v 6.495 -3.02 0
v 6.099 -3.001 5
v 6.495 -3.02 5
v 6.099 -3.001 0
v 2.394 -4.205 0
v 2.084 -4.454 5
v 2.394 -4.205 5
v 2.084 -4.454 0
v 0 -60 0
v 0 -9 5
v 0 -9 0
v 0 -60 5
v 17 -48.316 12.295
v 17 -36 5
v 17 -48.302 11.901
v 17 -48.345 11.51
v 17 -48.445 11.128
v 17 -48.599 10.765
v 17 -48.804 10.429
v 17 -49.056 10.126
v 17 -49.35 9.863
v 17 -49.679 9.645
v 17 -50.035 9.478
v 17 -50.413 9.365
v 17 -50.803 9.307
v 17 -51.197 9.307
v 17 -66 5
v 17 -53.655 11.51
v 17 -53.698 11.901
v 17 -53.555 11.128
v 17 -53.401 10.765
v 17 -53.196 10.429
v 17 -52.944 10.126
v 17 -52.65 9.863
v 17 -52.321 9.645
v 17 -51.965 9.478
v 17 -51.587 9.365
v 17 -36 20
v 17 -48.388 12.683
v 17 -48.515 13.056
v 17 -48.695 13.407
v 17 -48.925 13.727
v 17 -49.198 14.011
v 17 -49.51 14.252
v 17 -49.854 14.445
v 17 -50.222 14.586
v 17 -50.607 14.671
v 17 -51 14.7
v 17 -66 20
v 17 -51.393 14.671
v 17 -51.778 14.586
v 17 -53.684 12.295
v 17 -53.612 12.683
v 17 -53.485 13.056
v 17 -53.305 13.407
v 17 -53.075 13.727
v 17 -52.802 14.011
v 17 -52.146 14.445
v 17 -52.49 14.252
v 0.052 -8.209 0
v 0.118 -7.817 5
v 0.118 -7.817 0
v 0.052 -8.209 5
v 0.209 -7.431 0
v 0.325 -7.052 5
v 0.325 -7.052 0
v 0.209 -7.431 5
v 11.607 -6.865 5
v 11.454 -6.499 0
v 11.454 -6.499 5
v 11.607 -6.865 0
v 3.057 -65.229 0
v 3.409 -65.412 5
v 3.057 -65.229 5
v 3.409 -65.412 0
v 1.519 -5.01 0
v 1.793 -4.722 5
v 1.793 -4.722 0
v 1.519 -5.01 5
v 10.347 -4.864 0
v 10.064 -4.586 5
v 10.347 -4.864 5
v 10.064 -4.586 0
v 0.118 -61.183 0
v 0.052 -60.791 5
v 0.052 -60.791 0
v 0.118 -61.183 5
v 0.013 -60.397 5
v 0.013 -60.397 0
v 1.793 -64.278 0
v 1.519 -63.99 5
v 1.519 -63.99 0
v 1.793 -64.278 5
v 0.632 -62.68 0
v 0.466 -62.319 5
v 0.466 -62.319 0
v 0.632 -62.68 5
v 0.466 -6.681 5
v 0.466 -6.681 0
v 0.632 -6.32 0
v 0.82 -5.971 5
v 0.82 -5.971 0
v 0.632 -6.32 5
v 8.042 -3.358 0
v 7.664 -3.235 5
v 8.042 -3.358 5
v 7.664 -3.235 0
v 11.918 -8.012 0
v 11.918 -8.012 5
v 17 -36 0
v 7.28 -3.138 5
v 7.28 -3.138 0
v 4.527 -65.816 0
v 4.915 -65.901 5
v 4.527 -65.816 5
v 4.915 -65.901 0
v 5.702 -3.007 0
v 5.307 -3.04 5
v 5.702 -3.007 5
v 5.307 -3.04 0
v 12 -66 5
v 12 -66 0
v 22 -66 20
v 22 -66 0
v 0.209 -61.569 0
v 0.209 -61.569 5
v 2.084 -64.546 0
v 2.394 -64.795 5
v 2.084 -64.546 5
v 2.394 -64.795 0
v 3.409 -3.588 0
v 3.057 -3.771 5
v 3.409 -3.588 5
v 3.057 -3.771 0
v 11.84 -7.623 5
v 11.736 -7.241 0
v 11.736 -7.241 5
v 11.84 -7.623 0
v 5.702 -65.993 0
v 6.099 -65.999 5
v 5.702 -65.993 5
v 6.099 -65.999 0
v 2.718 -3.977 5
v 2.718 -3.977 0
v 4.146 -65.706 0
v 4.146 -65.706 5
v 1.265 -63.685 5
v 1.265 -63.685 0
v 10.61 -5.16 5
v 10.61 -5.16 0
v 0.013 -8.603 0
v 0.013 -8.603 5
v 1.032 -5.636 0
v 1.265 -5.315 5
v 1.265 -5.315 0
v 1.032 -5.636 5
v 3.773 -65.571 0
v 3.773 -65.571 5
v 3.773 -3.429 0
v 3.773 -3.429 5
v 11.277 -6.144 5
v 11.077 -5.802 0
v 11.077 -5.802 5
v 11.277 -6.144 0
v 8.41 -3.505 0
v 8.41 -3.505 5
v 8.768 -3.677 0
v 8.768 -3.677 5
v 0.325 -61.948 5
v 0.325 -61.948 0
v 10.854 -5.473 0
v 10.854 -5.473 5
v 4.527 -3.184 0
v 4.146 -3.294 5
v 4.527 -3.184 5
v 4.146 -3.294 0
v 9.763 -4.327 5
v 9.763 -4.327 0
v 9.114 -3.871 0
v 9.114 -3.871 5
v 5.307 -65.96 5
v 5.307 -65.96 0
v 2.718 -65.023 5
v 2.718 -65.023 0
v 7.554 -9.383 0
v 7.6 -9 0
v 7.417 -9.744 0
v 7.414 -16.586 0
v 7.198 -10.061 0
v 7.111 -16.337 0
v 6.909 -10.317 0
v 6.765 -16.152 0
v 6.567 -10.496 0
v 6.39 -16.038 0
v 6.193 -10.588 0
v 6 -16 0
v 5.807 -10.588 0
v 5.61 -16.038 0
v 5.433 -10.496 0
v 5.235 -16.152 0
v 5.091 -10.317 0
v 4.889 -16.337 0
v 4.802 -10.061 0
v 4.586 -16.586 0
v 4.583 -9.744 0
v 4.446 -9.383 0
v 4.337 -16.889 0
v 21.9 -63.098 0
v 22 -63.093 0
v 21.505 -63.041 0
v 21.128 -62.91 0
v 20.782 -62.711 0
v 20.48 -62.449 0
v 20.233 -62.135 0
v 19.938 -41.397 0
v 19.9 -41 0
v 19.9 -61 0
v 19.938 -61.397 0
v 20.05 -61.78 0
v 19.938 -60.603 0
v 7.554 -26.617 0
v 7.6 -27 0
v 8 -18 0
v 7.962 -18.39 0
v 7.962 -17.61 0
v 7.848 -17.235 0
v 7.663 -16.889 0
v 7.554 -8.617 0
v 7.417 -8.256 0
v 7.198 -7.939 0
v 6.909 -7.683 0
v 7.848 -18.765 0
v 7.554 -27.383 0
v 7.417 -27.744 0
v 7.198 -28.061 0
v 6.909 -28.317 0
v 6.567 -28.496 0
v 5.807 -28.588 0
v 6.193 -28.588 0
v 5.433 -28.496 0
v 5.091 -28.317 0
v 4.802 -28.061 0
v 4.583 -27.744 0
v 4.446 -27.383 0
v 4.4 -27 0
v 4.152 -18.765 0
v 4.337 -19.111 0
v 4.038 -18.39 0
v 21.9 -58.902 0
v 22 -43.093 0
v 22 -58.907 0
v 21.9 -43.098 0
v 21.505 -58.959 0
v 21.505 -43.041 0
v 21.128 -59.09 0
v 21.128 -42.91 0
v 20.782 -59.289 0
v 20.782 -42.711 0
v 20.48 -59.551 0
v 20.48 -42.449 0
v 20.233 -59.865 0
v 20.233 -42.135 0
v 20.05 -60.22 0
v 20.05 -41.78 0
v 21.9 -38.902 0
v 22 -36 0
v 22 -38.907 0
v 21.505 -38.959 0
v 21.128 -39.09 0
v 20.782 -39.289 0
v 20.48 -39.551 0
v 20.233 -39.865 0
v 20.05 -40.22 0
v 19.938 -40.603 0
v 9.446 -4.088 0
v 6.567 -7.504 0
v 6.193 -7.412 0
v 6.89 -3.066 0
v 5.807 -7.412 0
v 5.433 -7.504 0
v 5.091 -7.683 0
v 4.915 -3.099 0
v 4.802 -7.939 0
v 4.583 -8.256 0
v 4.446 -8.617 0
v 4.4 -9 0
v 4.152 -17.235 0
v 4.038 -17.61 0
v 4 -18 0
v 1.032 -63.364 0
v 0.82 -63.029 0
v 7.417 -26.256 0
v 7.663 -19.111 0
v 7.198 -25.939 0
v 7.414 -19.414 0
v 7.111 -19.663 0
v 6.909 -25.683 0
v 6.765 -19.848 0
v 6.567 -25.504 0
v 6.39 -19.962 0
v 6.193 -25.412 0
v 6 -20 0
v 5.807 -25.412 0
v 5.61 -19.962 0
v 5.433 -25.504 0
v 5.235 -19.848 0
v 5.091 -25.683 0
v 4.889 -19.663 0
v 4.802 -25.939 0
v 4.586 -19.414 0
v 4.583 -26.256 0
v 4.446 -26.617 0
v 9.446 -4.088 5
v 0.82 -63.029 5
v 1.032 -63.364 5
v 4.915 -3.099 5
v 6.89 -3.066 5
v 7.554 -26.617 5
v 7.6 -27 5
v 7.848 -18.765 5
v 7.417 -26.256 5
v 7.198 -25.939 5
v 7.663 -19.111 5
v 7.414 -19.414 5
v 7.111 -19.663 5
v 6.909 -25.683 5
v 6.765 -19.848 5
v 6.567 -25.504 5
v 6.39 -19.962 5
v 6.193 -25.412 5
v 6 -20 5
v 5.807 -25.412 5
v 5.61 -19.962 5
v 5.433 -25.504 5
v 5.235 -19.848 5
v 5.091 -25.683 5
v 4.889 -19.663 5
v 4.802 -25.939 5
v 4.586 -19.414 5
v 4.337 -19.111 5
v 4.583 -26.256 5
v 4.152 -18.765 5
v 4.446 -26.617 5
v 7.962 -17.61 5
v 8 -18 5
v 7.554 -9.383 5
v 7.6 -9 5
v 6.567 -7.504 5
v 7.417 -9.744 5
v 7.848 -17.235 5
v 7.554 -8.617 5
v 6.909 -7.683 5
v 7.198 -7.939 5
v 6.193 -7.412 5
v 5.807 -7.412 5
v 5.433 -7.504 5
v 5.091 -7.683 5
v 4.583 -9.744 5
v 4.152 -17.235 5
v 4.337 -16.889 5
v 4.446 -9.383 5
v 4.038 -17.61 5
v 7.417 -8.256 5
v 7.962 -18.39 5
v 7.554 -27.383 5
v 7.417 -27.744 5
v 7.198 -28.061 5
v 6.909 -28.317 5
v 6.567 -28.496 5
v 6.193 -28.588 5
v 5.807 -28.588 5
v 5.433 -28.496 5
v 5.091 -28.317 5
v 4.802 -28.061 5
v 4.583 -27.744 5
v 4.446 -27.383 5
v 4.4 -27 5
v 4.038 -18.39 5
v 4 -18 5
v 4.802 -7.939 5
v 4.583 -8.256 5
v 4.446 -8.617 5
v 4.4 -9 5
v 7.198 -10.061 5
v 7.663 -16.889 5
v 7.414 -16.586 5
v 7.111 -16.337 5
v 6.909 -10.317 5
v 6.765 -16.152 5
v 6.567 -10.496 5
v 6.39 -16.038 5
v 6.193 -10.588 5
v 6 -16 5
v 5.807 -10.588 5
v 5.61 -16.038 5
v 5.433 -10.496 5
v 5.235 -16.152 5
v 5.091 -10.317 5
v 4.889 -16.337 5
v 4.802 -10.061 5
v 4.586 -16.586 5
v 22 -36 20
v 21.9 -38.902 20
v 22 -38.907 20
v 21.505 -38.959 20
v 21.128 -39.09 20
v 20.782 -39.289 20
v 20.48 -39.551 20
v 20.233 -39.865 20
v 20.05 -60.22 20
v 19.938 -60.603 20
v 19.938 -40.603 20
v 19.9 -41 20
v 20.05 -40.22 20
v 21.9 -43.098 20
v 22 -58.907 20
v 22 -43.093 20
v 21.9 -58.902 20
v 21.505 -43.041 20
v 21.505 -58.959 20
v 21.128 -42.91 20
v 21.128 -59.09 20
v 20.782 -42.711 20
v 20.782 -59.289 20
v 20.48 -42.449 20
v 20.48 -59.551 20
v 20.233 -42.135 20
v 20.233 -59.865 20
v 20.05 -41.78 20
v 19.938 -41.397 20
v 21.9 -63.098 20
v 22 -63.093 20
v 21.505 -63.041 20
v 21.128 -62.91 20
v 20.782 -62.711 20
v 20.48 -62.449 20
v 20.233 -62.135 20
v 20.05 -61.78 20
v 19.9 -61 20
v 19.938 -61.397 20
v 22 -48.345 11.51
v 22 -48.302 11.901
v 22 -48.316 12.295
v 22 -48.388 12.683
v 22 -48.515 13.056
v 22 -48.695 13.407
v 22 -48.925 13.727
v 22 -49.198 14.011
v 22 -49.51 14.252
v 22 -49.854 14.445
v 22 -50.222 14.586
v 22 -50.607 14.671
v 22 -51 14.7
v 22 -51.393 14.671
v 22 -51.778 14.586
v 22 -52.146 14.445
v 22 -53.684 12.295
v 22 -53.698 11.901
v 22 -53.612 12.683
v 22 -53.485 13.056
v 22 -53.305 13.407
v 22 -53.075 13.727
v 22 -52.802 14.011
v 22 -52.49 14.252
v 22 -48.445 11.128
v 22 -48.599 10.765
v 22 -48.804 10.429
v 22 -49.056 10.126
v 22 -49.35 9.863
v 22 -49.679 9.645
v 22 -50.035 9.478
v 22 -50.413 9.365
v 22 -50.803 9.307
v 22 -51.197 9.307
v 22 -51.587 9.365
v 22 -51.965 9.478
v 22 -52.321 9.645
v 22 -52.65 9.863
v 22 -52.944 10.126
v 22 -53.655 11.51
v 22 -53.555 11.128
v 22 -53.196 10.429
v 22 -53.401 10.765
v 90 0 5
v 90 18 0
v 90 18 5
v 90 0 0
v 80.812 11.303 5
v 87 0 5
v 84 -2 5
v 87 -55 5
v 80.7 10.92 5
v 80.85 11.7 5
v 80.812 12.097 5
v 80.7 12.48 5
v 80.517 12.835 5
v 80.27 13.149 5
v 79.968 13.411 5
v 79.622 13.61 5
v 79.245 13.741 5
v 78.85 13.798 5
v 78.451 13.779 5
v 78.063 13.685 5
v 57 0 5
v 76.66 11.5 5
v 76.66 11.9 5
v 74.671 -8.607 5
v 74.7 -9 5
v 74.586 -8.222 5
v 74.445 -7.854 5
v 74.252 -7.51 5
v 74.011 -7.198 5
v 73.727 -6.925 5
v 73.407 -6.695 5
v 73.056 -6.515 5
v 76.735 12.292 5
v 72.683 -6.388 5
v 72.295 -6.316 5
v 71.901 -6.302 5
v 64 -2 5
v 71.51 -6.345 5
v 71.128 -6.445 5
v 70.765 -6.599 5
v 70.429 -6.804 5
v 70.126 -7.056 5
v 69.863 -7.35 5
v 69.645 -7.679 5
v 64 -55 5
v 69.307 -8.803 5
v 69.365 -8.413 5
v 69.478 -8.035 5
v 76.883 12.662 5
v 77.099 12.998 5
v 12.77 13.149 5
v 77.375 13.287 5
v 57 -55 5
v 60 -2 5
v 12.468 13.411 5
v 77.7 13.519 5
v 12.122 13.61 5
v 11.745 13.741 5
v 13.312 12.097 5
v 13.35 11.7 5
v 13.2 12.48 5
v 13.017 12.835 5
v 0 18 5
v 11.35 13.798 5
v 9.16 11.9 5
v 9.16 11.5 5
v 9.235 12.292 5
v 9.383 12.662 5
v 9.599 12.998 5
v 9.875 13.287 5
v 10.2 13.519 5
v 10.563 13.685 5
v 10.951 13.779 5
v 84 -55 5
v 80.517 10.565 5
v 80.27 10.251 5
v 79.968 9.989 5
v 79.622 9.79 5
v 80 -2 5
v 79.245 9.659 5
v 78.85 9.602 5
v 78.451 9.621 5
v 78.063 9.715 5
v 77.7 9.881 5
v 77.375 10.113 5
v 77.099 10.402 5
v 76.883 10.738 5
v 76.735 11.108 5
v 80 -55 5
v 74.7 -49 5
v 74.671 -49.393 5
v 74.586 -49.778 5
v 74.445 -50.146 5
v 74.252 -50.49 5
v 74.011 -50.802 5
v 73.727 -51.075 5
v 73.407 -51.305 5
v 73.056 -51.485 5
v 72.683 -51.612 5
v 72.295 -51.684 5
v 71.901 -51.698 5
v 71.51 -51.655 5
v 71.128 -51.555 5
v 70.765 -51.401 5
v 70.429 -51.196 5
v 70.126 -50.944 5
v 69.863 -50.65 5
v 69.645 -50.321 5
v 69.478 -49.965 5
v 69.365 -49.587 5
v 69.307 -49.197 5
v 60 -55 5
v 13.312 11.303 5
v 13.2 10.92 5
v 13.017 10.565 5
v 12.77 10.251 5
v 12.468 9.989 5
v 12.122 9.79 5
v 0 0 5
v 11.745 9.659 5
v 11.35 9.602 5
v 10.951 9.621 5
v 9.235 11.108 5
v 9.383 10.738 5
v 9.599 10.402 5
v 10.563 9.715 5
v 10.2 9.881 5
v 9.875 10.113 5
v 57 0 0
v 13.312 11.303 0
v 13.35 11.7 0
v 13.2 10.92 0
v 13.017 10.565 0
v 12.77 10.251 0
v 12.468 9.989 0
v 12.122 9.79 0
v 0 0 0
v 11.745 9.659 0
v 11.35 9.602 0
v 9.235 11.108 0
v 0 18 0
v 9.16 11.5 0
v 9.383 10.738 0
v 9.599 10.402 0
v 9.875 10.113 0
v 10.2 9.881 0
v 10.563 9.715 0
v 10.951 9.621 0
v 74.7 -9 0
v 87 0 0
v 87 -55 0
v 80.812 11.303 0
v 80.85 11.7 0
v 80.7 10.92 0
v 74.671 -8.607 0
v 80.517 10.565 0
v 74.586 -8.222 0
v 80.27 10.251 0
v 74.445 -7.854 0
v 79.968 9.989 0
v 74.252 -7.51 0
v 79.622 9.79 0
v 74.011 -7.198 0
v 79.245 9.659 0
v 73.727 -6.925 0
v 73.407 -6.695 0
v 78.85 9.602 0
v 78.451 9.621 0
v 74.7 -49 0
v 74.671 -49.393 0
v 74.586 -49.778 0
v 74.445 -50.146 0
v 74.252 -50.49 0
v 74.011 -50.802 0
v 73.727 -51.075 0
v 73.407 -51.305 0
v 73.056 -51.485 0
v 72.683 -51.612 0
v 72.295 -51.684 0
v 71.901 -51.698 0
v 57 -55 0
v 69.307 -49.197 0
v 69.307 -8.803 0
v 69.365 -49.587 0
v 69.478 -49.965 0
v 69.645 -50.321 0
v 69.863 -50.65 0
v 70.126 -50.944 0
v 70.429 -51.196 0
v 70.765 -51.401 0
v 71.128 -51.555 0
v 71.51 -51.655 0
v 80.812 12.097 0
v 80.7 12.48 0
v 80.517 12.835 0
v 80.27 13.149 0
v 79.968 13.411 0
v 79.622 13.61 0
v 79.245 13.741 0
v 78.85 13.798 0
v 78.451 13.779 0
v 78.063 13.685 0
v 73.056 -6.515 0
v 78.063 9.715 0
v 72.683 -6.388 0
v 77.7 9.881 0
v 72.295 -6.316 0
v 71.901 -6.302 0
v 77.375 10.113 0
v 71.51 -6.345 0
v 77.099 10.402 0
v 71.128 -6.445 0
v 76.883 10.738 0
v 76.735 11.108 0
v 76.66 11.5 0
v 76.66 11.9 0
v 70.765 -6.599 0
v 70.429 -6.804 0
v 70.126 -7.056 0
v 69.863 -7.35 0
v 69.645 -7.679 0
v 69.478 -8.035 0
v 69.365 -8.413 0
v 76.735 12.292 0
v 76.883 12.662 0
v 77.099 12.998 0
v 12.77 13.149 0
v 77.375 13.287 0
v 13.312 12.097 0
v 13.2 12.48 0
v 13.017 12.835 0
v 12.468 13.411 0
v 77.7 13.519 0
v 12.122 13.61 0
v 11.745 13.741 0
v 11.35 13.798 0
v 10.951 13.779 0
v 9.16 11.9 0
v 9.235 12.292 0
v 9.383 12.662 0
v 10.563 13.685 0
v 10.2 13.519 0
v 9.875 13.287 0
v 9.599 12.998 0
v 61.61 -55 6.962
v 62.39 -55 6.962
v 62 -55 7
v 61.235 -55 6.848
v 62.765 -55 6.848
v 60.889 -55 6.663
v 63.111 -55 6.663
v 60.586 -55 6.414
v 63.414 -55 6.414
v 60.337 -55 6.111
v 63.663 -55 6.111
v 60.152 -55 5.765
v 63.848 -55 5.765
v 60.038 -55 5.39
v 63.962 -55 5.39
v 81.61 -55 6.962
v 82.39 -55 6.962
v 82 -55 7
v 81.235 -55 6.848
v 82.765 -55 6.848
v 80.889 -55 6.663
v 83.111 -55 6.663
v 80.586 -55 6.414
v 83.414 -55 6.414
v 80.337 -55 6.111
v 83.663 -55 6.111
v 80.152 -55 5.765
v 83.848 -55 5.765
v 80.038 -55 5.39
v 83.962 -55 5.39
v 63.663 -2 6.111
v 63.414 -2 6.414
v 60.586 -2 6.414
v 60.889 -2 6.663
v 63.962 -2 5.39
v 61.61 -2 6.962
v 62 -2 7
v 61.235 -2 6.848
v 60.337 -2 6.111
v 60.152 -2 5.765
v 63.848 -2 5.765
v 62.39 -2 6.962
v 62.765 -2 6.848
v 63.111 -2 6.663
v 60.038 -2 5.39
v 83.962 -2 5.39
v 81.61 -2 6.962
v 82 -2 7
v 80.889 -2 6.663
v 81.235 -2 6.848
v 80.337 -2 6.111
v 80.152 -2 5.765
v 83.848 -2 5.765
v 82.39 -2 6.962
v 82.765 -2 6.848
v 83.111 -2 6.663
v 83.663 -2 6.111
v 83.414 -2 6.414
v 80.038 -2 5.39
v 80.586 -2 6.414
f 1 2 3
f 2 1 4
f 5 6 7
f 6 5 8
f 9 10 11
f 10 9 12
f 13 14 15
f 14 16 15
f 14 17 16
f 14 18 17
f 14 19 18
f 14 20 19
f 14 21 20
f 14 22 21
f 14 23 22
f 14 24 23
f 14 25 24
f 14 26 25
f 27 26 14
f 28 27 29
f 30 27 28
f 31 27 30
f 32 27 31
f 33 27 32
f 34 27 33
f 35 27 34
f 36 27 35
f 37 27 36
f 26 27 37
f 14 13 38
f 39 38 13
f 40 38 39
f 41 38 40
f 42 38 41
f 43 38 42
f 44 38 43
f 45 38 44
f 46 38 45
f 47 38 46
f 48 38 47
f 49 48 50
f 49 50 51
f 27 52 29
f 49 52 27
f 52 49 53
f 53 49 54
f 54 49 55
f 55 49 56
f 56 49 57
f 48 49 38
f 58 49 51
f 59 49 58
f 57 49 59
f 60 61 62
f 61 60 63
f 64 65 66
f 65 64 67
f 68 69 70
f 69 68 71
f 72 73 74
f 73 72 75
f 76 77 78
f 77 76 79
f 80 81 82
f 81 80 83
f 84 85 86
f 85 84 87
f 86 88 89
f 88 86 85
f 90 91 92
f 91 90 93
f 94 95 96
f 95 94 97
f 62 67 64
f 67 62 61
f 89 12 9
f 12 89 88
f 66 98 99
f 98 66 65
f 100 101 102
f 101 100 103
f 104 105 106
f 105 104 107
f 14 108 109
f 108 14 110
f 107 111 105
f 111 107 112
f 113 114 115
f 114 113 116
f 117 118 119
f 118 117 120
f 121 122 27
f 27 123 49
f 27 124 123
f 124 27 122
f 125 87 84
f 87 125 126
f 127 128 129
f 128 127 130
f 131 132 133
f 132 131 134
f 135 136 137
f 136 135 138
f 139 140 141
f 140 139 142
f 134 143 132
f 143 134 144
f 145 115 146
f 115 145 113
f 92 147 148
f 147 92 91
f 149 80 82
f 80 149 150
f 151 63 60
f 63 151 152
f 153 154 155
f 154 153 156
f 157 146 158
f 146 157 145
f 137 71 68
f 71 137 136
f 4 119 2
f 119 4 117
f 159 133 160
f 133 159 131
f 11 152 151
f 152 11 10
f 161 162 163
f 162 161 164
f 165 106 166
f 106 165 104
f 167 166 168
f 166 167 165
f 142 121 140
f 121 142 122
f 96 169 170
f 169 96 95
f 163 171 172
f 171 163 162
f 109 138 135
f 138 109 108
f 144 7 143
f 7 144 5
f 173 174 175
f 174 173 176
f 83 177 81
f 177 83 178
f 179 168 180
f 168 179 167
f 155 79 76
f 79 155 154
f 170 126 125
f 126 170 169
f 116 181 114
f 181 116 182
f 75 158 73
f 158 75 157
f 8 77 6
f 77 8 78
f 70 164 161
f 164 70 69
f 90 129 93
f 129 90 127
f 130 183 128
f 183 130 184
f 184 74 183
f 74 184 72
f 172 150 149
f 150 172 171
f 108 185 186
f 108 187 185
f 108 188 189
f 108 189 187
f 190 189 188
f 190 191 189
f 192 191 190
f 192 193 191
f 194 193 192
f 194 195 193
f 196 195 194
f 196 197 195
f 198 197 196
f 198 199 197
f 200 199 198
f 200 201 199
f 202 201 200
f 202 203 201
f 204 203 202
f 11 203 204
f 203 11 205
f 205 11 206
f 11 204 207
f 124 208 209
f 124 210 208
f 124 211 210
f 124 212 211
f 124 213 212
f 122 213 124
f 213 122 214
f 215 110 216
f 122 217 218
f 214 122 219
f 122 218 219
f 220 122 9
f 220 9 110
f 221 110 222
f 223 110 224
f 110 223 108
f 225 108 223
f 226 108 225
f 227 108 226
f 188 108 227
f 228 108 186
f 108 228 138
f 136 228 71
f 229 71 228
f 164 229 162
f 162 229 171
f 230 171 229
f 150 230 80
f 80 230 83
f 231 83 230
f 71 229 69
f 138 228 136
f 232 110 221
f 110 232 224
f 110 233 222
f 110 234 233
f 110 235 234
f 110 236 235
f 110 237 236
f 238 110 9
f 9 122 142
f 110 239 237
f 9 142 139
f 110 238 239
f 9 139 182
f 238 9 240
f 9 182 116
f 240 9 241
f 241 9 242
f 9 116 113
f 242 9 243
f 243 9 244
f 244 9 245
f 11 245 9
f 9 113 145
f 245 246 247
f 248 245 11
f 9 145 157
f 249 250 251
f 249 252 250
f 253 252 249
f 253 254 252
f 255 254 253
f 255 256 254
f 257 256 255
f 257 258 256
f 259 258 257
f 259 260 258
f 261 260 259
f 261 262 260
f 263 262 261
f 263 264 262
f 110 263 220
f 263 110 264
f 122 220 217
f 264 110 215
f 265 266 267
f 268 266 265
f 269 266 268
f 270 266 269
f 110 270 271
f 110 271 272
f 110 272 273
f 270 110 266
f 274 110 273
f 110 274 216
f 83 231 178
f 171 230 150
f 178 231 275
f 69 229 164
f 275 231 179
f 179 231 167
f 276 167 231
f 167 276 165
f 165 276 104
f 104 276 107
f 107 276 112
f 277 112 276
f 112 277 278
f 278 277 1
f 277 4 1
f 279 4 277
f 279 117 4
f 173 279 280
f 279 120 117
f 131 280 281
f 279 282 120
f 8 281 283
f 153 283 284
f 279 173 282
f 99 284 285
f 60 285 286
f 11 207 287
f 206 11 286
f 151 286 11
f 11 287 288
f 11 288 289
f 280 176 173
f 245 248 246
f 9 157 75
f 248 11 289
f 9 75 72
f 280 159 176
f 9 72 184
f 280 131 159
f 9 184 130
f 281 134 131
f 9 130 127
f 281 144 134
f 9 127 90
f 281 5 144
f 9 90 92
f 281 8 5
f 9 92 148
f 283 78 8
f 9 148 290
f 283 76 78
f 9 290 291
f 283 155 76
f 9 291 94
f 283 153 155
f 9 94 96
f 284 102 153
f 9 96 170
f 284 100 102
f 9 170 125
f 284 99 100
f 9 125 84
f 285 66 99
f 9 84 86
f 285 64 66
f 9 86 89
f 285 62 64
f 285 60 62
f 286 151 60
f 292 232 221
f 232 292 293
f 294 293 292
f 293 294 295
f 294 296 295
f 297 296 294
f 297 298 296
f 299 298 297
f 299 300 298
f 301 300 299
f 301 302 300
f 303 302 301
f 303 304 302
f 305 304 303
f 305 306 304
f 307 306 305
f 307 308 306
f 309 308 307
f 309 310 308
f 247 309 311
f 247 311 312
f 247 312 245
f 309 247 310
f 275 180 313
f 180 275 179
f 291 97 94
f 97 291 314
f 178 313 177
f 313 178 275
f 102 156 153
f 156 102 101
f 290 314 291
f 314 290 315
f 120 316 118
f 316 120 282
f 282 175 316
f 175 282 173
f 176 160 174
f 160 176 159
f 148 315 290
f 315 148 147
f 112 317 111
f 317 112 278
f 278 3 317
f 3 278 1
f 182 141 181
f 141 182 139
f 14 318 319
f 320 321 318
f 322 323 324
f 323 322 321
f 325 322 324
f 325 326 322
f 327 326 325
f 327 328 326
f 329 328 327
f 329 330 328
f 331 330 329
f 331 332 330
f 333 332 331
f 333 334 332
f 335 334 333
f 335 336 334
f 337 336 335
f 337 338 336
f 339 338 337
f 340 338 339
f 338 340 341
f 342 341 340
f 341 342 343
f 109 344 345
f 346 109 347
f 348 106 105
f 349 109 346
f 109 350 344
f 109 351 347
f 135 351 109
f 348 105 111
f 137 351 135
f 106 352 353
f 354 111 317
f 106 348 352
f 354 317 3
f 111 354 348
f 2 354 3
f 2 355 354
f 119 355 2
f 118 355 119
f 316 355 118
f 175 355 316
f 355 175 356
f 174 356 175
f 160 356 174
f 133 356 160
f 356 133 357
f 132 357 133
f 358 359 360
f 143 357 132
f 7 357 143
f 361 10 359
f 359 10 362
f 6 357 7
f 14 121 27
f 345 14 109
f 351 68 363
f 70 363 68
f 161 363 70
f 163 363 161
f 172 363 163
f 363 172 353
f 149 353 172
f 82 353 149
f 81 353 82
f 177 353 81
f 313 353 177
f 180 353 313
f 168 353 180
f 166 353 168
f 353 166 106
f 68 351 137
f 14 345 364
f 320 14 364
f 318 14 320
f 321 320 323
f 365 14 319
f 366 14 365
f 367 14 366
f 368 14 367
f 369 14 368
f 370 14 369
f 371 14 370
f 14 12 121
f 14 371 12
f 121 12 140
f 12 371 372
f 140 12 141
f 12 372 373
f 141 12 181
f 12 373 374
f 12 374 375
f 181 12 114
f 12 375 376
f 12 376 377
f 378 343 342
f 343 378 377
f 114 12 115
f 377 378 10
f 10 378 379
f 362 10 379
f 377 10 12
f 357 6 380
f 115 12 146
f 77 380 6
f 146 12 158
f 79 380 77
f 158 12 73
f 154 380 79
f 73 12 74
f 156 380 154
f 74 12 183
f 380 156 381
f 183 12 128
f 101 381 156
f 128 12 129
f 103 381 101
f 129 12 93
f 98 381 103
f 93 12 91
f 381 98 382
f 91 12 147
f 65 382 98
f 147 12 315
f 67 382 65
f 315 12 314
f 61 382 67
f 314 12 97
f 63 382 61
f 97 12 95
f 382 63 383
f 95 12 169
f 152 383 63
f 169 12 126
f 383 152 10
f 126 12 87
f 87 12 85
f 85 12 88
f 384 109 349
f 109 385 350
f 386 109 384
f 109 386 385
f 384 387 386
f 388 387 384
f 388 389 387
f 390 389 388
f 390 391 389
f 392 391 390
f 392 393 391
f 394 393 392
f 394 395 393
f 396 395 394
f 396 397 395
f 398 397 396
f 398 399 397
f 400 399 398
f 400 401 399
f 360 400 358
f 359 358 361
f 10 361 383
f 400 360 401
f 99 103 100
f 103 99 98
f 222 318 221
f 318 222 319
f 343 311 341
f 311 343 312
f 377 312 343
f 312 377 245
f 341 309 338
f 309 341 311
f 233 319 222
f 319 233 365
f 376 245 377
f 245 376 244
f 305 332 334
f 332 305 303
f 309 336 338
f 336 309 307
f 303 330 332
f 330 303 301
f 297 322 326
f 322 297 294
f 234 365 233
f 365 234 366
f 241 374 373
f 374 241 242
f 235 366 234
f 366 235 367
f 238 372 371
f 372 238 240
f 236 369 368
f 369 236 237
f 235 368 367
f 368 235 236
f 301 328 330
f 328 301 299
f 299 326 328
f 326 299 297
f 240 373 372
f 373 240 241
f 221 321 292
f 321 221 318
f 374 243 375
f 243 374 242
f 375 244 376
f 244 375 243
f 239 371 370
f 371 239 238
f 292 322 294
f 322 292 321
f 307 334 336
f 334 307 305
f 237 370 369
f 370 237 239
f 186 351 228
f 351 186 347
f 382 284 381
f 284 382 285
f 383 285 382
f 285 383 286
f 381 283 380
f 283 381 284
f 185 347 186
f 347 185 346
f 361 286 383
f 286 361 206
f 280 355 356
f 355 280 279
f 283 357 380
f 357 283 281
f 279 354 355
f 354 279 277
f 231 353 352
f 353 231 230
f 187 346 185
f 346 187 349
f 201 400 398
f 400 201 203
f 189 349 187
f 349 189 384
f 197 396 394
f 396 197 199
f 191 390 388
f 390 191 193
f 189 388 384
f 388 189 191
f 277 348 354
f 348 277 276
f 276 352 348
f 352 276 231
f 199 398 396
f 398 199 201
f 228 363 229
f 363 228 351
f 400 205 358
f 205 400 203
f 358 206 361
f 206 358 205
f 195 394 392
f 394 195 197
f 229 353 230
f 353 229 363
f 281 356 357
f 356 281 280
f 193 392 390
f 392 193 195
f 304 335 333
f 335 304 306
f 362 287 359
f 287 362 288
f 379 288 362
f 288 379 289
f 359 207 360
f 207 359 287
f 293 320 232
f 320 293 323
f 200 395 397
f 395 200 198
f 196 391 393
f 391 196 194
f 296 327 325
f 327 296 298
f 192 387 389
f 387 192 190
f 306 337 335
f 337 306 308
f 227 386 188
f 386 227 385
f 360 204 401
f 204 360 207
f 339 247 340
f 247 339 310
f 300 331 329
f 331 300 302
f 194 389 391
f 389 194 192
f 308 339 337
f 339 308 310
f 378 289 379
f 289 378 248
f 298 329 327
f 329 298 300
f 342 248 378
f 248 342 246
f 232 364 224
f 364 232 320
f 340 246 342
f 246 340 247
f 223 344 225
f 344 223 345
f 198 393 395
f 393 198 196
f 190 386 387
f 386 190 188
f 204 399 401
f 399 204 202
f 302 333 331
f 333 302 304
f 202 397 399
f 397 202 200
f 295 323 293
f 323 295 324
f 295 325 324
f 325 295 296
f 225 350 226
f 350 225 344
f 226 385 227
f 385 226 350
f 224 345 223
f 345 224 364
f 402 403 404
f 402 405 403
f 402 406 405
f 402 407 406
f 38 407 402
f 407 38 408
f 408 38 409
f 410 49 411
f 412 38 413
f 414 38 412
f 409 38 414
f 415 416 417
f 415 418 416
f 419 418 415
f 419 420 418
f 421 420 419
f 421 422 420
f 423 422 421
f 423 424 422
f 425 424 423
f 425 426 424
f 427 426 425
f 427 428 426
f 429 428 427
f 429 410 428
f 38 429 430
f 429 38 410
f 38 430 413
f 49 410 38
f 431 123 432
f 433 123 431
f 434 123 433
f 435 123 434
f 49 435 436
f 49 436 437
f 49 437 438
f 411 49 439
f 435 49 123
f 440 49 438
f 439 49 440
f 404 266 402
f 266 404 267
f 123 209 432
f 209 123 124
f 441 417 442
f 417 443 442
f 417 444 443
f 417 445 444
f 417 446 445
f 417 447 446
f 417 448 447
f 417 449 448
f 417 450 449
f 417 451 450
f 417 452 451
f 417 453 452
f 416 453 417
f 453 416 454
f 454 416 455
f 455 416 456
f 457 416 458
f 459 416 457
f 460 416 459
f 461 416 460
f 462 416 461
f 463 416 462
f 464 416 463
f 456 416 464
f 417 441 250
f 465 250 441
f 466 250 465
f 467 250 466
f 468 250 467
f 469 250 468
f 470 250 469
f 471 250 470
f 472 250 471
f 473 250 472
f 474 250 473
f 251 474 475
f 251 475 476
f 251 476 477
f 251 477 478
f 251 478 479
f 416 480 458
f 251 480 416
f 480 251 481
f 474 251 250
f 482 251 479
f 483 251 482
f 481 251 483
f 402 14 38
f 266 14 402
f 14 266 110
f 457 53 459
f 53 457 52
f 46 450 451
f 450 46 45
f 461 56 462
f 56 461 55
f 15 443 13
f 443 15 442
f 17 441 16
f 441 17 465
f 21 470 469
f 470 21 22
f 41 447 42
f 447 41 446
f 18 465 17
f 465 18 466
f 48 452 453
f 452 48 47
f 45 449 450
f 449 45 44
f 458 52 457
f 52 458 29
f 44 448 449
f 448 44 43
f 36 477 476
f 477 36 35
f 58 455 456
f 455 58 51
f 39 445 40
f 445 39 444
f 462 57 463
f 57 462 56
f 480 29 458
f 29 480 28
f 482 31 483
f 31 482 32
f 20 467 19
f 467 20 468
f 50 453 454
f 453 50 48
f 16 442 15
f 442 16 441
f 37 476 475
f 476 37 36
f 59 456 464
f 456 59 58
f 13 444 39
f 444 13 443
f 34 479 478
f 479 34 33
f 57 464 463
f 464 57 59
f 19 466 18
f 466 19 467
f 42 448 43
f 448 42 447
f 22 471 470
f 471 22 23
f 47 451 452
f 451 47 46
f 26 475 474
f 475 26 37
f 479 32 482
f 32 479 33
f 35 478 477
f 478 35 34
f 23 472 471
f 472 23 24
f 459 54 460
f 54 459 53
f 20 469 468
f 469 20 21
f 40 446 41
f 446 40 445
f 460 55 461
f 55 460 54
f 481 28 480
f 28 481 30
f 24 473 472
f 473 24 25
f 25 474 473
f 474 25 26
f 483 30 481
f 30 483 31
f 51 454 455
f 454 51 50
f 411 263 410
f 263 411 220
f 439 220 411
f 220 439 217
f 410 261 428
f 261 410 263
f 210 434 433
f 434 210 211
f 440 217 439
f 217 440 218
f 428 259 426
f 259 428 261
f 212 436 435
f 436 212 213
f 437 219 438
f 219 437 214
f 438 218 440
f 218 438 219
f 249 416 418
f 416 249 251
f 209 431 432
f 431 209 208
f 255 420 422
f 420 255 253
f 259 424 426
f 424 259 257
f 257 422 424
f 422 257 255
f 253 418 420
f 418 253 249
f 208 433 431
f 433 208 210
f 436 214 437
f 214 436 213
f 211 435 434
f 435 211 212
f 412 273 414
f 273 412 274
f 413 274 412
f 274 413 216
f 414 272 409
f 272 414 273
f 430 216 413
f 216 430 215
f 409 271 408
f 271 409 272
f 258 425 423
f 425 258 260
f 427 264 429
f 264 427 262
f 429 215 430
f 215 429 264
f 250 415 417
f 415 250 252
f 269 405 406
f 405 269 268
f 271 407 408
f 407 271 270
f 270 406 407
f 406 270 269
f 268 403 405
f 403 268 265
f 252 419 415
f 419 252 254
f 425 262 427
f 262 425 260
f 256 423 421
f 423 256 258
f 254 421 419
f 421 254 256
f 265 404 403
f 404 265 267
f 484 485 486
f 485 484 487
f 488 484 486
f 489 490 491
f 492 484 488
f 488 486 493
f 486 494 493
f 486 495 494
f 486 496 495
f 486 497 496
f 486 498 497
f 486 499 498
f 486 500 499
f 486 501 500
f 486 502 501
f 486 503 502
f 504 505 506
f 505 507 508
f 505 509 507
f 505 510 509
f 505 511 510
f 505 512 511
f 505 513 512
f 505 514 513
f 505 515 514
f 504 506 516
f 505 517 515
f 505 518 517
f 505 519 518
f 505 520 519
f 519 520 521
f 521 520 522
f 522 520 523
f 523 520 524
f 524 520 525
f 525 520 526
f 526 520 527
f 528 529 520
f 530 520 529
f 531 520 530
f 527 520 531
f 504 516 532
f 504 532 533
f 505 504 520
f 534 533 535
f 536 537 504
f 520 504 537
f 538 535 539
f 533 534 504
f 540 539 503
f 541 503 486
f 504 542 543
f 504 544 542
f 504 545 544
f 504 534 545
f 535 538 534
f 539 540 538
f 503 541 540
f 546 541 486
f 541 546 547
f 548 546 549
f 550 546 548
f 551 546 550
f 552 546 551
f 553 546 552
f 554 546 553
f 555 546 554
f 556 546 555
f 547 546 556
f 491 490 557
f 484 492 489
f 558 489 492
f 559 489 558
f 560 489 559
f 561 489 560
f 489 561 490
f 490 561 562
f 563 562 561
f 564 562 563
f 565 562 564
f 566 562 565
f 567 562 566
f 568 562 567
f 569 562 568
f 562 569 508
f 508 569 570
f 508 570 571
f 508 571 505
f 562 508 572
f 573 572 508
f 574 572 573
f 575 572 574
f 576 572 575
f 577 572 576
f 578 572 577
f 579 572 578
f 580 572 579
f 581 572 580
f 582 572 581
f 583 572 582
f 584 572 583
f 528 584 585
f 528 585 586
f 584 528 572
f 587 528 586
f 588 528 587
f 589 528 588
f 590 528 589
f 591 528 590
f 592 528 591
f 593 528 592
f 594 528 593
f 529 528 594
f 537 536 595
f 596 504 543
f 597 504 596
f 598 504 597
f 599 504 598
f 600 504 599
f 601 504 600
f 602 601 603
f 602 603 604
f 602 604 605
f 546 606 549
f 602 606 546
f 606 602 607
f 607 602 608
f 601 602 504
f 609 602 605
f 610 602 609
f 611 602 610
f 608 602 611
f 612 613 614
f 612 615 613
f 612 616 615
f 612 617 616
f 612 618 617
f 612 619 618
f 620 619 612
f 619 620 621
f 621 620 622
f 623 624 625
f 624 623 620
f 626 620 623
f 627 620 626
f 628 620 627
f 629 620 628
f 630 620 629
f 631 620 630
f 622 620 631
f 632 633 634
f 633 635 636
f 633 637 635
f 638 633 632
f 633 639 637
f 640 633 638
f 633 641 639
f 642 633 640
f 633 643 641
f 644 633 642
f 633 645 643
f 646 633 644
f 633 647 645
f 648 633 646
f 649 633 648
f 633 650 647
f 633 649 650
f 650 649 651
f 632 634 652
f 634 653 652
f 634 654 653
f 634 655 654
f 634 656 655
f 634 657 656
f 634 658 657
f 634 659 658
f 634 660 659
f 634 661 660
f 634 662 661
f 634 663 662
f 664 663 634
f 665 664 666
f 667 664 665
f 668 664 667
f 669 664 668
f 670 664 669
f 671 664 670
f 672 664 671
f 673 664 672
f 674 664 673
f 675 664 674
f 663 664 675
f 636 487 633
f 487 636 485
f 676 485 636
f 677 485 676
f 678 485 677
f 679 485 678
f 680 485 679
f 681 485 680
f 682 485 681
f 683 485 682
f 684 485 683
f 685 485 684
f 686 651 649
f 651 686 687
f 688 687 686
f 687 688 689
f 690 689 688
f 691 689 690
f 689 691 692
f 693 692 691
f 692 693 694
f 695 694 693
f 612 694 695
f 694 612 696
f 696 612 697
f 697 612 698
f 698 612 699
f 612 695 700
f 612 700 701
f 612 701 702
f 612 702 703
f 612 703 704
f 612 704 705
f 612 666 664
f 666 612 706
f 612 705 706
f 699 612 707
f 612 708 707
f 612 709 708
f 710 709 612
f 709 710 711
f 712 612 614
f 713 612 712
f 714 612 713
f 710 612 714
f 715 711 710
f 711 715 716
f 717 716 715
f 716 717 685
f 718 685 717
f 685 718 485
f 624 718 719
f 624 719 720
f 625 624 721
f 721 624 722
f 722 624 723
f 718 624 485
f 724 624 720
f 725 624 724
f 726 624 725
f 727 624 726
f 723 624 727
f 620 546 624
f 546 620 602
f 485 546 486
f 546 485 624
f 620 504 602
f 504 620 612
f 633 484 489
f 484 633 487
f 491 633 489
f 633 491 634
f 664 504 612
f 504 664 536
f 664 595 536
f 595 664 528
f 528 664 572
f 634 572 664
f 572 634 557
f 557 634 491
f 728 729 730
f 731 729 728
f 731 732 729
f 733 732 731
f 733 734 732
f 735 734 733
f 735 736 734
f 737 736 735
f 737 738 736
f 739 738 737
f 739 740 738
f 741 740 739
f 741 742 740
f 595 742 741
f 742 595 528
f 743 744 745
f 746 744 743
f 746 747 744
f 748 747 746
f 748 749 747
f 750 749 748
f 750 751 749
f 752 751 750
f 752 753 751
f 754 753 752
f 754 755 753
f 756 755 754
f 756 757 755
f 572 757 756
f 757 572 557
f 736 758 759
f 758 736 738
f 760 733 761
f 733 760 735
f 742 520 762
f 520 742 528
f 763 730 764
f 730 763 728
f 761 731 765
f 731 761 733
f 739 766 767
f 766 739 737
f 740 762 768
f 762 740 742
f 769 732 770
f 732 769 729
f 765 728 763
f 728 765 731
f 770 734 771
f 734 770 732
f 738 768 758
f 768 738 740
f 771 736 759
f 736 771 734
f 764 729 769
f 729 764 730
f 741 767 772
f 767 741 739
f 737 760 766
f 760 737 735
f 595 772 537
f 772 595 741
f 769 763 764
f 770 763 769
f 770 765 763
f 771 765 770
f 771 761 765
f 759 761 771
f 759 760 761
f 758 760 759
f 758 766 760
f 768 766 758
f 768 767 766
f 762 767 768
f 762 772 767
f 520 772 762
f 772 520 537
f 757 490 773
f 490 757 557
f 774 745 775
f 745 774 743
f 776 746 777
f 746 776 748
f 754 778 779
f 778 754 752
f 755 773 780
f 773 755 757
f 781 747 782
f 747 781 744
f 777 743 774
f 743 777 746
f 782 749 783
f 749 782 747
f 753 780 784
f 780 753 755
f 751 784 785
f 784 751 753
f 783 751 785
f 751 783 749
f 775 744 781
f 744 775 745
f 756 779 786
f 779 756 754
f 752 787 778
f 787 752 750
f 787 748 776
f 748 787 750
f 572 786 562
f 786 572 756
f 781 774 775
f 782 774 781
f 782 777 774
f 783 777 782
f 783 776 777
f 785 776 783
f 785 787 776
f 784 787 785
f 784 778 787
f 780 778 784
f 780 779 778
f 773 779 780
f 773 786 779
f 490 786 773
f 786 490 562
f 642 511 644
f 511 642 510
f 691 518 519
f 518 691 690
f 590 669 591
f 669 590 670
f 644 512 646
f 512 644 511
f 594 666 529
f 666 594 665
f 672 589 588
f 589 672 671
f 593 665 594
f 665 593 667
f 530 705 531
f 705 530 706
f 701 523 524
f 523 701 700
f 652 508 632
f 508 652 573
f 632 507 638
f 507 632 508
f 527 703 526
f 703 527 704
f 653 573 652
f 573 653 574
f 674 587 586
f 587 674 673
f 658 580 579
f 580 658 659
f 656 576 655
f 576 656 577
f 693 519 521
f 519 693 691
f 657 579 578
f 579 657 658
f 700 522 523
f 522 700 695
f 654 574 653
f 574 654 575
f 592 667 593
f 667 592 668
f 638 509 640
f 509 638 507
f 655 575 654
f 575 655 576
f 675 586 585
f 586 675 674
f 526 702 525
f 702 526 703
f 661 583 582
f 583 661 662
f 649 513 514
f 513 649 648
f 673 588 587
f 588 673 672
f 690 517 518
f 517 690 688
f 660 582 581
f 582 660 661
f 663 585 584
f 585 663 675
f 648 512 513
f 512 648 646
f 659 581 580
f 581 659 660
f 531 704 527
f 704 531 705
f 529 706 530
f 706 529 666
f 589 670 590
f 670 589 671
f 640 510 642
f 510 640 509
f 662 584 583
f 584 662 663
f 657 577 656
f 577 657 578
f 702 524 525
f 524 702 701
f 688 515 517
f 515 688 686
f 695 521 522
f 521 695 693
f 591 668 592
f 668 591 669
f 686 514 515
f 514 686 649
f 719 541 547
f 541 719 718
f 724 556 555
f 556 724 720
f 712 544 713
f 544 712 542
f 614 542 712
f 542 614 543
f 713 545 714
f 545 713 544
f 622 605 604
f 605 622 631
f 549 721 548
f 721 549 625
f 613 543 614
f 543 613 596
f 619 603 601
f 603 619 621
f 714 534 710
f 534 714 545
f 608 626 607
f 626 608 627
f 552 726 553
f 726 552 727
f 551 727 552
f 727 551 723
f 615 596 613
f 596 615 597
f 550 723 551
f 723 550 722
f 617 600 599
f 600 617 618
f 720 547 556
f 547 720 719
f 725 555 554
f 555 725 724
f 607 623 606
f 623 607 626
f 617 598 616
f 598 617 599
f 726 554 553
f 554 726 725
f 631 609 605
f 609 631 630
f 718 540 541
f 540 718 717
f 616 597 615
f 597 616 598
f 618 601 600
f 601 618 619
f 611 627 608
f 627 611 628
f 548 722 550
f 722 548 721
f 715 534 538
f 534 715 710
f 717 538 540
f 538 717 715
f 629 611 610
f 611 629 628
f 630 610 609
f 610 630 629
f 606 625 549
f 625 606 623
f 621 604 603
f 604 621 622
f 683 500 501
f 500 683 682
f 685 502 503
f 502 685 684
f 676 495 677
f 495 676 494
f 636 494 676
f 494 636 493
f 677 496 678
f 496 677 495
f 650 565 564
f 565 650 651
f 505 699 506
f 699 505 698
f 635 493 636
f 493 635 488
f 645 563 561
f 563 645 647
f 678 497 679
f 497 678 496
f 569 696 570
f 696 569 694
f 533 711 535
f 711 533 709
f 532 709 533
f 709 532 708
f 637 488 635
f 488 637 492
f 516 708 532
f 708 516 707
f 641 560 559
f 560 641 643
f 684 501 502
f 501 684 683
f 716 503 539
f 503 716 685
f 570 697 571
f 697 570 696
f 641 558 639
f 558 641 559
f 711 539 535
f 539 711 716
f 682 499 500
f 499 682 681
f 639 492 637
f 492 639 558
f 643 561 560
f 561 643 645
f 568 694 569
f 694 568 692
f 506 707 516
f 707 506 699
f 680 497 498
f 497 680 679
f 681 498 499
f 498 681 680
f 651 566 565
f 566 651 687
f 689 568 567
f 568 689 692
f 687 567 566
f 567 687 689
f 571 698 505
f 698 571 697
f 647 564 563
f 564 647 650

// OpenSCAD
$fa = 1.0;
$fs = 0.4;
translate([11,-60,5]) rotate([0,180,0])
// Vertical adjustment mount
color("cornflowerblue"){
    // bottom plate
    difference(){
        hull(){
            translate([5,0,0]) cylinder(h=5,r=6);
            translate([5,51,0]) cylinder(h=5,r=6);
            translate([-6,-6,0]) cube([5,30,5]);}
        // screw holes for top of BL touch
        translate([5,33,-1]) cylinder(h=7,r=1.6);
        translate([5,51,-1]) cylinder(h=7,r=1.6);
        // center hole on BL touch
        translate([5,42,-1]) cylinder(h=7,r=2);
        // slots for vertical adjustment
        translate([-11,-1,-1]) cylinder(h=27, r=2.1);
        translate([-11,19,-1]) cylinder(h=27, r=2.1);}
    // side plate
    difference(){
        translate([-11,-6,-15]) cube([5,30,20]);
        // M5 screw hole for height adjustment
        translate([-15,9,-7]) rotate([0,90,0]) cylinder(h=10,r=2.7);
        // slots for vertical adjustment
        translate([-11,-1,-16]) cylinder(h=27, r=2.1);
        translate([-11,19,-16]) cylinder(h=27, r=2.1);
}}
//Bracket to attach to pump
color("indianred"){
difference(){
    union(){
        cube([90,18,5]);
        translate([57,-55,0]) cube([30,55,5]);
        translate([62,-55,5]) rotate([-90,0,0]) cylinder(h=53,r=2);
        translate([82,-55,5]) rotate([-90,0,0]) cylinder(h=53,r=2);}
    // slot for vertical adjustment
    hull(){
    translate([72,-49,-1]) cylinder(h=7,r=2.7);
    translate([72,-9,-1]) cylinder(h=7,r=2.7);}
    // #6 screw holes for mounting
    translate([11.25,11.7,-1]) cylinder(h=7,r=2.1);
    translate([78.75,11.7,-1]) cylinder(h=7,r=2.1);}}
